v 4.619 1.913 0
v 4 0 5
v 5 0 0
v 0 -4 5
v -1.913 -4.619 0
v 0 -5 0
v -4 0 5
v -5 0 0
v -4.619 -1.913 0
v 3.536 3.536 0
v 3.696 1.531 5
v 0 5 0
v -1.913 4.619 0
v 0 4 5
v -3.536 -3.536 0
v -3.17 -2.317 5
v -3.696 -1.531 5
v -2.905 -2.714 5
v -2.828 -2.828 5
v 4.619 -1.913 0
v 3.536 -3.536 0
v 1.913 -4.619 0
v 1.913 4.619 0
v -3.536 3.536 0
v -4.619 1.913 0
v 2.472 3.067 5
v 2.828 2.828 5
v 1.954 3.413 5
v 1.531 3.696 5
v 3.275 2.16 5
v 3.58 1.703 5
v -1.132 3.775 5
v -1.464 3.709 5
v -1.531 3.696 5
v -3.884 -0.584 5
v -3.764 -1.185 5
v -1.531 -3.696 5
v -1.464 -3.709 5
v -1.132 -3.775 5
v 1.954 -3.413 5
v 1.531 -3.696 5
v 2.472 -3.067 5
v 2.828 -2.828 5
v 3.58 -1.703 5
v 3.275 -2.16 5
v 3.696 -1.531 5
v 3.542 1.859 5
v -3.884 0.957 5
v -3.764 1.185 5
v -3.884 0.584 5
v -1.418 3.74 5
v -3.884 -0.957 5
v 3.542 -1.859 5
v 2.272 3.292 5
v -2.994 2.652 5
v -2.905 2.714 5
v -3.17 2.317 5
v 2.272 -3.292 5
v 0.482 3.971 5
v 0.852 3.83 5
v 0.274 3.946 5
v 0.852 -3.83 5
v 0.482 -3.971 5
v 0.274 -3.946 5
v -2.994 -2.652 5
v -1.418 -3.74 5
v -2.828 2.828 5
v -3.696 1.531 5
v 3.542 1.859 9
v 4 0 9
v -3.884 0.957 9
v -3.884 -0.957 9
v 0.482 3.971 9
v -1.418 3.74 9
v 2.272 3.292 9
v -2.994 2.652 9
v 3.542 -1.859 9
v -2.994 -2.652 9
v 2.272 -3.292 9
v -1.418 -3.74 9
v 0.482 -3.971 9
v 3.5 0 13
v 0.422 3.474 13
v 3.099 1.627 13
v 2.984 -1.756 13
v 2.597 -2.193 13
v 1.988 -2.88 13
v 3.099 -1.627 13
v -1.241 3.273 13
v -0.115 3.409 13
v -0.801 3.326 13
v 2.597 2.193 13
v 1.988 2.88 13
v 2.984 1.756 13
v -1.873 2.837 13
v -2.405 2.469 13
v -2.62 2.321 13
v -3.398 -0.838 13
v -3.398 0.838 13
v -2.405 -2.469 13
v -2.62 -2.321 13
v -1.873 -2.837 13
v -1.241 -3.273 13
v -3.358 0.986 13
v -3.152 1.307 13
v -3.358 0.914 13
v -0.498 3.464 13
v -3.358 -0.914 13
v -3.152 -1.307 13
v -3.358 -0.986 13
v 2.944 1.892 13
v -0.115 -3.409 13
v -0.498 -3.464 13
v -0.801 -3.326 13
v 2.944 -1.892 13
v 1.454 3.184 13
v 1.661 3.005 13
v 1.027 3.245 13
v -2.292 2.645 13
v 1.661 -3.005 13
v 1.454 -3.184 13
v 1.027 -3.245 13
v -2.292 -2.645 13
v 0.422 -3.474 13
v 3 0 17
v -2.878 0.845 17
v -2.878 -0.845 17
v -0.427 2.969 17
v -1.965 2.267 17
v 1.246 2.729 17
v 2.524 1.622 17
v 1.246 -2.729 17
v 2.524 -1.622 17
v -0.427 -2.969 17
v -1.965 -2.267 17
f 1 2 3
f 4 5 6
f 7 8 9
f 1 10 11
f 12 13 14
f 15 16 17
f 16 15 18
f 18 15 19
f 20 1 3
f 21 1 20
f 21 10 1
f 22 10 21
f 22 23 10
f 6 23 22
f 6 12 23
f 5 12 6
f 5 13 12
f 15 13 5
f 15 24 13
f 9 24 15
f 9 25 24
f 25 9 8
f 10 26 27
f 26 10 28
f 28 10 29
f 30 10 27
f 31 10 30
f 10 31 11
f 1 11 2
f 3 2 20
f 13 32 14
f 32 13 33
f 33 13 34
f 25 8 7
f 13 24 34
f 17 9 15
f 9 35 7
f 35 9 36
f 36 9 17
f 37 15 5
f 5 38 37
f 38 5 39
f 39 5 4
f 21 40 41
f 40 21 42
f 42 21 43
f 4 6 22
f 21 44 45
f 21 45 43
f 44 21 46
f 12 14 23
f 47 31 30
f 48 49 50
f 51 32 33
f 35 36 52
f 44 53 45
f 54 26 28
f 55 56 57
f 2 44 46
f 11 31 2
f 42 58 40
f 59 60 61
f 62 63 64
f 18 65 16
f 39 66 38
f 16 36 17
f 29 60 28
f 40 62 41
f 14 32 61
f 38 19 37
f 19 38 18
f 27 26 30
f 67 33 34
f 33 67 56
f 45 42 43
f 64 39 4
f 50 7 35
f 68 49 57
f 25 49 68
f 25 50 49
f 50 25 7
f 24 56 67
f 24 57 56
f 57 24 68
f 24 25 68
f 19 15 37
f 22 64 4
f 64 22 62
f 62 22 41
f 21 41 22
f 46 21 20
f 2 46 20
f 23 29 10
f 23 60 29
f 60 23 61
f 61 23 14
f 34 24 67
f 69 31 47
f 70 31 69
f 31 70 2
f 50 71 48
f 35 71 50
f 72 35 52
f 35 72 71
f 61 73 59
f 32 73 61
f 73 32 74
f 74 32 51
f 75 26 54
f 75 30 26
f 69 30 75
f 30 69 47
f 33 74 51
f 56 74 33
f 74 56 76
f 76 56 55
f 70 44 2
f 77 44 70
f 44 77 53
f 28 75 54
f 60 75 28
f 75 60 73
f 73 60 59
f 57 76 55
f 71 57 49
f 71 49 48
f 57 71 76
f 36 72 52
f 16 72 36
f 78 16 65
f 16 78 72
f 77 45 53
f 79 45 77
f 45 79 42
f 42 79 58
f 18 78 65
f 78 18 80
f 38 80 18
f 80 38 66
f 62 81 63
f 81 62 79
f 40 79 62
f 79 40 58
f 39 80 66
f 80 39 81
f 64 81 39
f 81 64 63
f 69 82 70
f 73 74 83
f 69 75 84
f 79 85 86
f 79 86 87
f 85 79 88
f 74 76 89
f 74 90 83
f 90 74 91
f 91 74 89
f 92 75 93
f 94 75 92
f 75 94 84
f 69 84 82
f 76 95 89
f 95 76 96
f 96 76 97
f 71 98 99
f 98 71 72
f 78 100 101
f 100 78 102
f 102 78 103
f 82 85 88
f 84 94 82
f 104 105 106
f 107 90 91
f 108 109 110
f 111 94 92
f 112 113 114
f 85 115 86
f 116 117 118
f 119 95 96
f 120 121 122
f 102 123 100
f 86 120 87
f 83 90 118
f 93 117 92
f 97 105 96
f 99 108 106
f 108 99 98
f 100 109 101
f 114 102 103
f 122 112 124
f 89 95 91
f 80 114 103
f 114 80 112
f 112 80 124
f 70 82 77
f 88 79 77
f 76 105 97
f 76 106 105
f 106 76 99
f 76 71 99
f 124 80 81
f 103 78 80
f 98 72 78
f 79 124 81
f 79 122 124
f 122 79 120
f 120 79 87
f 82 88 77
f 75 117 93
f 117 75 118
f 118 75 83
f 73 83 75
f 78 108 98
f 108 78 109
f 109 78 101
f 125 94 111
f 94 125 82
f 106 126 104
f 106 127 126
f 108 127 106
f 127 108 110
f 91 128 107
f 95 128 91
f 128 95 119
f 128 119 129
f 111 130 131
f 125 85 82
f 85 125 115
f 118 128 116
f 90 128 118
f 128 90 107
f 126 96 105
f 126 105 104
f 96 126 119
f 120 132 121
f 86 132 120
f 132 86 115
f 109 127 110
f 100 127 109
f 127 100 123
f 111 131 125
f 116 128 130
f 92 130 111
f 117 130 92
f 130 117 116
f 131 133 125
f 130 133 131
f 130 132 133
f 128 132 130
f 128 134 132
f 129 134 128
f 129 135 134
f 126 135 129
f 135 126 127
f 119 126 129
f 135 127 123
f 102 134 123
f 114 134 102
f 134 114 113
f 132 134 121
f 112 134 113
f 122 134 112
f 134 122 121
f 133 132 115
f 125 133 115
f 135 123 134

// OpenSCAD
module lamp(r_top, r_lamp, r_middle, r_base, h_top, h_lamp, h_base_top, h_base_bottom) {
    
    // Poprawiona formuła r_upper_lamp
    r_upper_lamp = r_top+(((r_lamp - r_top)*h_top) / (h_lamp + h_top));
    
    // Podstawa
    cylinder(h_base_bottom, r1=r_base, r2=r_middle);

    // Górna część podstawy
    translate([0,0,h_base_bottom])
    cylinder(h_base_top, r1=r_middle, r2=r_lamp);

    // Główna część lampy
    translate([0,0,h_base_bottom + h_base_top])
    cylinder(h_lamp, r1=r_lamp, r2=r_upper_lamp);

    // Górna część lampy
    translate([0,0,h_base_bottom + h_base_top + h_lamp])
    cylinder(h_top, r1=r_upper_lamp, r2=r_top);
}

lamp(
    r_top = 3,
    r_lamp = 4,
    r_middle = 4,
    r_base = 5,
    h_top = 4,
    h_lamp = 4,
    h_base_top = 4,
    h_base_bottom = 5
);
